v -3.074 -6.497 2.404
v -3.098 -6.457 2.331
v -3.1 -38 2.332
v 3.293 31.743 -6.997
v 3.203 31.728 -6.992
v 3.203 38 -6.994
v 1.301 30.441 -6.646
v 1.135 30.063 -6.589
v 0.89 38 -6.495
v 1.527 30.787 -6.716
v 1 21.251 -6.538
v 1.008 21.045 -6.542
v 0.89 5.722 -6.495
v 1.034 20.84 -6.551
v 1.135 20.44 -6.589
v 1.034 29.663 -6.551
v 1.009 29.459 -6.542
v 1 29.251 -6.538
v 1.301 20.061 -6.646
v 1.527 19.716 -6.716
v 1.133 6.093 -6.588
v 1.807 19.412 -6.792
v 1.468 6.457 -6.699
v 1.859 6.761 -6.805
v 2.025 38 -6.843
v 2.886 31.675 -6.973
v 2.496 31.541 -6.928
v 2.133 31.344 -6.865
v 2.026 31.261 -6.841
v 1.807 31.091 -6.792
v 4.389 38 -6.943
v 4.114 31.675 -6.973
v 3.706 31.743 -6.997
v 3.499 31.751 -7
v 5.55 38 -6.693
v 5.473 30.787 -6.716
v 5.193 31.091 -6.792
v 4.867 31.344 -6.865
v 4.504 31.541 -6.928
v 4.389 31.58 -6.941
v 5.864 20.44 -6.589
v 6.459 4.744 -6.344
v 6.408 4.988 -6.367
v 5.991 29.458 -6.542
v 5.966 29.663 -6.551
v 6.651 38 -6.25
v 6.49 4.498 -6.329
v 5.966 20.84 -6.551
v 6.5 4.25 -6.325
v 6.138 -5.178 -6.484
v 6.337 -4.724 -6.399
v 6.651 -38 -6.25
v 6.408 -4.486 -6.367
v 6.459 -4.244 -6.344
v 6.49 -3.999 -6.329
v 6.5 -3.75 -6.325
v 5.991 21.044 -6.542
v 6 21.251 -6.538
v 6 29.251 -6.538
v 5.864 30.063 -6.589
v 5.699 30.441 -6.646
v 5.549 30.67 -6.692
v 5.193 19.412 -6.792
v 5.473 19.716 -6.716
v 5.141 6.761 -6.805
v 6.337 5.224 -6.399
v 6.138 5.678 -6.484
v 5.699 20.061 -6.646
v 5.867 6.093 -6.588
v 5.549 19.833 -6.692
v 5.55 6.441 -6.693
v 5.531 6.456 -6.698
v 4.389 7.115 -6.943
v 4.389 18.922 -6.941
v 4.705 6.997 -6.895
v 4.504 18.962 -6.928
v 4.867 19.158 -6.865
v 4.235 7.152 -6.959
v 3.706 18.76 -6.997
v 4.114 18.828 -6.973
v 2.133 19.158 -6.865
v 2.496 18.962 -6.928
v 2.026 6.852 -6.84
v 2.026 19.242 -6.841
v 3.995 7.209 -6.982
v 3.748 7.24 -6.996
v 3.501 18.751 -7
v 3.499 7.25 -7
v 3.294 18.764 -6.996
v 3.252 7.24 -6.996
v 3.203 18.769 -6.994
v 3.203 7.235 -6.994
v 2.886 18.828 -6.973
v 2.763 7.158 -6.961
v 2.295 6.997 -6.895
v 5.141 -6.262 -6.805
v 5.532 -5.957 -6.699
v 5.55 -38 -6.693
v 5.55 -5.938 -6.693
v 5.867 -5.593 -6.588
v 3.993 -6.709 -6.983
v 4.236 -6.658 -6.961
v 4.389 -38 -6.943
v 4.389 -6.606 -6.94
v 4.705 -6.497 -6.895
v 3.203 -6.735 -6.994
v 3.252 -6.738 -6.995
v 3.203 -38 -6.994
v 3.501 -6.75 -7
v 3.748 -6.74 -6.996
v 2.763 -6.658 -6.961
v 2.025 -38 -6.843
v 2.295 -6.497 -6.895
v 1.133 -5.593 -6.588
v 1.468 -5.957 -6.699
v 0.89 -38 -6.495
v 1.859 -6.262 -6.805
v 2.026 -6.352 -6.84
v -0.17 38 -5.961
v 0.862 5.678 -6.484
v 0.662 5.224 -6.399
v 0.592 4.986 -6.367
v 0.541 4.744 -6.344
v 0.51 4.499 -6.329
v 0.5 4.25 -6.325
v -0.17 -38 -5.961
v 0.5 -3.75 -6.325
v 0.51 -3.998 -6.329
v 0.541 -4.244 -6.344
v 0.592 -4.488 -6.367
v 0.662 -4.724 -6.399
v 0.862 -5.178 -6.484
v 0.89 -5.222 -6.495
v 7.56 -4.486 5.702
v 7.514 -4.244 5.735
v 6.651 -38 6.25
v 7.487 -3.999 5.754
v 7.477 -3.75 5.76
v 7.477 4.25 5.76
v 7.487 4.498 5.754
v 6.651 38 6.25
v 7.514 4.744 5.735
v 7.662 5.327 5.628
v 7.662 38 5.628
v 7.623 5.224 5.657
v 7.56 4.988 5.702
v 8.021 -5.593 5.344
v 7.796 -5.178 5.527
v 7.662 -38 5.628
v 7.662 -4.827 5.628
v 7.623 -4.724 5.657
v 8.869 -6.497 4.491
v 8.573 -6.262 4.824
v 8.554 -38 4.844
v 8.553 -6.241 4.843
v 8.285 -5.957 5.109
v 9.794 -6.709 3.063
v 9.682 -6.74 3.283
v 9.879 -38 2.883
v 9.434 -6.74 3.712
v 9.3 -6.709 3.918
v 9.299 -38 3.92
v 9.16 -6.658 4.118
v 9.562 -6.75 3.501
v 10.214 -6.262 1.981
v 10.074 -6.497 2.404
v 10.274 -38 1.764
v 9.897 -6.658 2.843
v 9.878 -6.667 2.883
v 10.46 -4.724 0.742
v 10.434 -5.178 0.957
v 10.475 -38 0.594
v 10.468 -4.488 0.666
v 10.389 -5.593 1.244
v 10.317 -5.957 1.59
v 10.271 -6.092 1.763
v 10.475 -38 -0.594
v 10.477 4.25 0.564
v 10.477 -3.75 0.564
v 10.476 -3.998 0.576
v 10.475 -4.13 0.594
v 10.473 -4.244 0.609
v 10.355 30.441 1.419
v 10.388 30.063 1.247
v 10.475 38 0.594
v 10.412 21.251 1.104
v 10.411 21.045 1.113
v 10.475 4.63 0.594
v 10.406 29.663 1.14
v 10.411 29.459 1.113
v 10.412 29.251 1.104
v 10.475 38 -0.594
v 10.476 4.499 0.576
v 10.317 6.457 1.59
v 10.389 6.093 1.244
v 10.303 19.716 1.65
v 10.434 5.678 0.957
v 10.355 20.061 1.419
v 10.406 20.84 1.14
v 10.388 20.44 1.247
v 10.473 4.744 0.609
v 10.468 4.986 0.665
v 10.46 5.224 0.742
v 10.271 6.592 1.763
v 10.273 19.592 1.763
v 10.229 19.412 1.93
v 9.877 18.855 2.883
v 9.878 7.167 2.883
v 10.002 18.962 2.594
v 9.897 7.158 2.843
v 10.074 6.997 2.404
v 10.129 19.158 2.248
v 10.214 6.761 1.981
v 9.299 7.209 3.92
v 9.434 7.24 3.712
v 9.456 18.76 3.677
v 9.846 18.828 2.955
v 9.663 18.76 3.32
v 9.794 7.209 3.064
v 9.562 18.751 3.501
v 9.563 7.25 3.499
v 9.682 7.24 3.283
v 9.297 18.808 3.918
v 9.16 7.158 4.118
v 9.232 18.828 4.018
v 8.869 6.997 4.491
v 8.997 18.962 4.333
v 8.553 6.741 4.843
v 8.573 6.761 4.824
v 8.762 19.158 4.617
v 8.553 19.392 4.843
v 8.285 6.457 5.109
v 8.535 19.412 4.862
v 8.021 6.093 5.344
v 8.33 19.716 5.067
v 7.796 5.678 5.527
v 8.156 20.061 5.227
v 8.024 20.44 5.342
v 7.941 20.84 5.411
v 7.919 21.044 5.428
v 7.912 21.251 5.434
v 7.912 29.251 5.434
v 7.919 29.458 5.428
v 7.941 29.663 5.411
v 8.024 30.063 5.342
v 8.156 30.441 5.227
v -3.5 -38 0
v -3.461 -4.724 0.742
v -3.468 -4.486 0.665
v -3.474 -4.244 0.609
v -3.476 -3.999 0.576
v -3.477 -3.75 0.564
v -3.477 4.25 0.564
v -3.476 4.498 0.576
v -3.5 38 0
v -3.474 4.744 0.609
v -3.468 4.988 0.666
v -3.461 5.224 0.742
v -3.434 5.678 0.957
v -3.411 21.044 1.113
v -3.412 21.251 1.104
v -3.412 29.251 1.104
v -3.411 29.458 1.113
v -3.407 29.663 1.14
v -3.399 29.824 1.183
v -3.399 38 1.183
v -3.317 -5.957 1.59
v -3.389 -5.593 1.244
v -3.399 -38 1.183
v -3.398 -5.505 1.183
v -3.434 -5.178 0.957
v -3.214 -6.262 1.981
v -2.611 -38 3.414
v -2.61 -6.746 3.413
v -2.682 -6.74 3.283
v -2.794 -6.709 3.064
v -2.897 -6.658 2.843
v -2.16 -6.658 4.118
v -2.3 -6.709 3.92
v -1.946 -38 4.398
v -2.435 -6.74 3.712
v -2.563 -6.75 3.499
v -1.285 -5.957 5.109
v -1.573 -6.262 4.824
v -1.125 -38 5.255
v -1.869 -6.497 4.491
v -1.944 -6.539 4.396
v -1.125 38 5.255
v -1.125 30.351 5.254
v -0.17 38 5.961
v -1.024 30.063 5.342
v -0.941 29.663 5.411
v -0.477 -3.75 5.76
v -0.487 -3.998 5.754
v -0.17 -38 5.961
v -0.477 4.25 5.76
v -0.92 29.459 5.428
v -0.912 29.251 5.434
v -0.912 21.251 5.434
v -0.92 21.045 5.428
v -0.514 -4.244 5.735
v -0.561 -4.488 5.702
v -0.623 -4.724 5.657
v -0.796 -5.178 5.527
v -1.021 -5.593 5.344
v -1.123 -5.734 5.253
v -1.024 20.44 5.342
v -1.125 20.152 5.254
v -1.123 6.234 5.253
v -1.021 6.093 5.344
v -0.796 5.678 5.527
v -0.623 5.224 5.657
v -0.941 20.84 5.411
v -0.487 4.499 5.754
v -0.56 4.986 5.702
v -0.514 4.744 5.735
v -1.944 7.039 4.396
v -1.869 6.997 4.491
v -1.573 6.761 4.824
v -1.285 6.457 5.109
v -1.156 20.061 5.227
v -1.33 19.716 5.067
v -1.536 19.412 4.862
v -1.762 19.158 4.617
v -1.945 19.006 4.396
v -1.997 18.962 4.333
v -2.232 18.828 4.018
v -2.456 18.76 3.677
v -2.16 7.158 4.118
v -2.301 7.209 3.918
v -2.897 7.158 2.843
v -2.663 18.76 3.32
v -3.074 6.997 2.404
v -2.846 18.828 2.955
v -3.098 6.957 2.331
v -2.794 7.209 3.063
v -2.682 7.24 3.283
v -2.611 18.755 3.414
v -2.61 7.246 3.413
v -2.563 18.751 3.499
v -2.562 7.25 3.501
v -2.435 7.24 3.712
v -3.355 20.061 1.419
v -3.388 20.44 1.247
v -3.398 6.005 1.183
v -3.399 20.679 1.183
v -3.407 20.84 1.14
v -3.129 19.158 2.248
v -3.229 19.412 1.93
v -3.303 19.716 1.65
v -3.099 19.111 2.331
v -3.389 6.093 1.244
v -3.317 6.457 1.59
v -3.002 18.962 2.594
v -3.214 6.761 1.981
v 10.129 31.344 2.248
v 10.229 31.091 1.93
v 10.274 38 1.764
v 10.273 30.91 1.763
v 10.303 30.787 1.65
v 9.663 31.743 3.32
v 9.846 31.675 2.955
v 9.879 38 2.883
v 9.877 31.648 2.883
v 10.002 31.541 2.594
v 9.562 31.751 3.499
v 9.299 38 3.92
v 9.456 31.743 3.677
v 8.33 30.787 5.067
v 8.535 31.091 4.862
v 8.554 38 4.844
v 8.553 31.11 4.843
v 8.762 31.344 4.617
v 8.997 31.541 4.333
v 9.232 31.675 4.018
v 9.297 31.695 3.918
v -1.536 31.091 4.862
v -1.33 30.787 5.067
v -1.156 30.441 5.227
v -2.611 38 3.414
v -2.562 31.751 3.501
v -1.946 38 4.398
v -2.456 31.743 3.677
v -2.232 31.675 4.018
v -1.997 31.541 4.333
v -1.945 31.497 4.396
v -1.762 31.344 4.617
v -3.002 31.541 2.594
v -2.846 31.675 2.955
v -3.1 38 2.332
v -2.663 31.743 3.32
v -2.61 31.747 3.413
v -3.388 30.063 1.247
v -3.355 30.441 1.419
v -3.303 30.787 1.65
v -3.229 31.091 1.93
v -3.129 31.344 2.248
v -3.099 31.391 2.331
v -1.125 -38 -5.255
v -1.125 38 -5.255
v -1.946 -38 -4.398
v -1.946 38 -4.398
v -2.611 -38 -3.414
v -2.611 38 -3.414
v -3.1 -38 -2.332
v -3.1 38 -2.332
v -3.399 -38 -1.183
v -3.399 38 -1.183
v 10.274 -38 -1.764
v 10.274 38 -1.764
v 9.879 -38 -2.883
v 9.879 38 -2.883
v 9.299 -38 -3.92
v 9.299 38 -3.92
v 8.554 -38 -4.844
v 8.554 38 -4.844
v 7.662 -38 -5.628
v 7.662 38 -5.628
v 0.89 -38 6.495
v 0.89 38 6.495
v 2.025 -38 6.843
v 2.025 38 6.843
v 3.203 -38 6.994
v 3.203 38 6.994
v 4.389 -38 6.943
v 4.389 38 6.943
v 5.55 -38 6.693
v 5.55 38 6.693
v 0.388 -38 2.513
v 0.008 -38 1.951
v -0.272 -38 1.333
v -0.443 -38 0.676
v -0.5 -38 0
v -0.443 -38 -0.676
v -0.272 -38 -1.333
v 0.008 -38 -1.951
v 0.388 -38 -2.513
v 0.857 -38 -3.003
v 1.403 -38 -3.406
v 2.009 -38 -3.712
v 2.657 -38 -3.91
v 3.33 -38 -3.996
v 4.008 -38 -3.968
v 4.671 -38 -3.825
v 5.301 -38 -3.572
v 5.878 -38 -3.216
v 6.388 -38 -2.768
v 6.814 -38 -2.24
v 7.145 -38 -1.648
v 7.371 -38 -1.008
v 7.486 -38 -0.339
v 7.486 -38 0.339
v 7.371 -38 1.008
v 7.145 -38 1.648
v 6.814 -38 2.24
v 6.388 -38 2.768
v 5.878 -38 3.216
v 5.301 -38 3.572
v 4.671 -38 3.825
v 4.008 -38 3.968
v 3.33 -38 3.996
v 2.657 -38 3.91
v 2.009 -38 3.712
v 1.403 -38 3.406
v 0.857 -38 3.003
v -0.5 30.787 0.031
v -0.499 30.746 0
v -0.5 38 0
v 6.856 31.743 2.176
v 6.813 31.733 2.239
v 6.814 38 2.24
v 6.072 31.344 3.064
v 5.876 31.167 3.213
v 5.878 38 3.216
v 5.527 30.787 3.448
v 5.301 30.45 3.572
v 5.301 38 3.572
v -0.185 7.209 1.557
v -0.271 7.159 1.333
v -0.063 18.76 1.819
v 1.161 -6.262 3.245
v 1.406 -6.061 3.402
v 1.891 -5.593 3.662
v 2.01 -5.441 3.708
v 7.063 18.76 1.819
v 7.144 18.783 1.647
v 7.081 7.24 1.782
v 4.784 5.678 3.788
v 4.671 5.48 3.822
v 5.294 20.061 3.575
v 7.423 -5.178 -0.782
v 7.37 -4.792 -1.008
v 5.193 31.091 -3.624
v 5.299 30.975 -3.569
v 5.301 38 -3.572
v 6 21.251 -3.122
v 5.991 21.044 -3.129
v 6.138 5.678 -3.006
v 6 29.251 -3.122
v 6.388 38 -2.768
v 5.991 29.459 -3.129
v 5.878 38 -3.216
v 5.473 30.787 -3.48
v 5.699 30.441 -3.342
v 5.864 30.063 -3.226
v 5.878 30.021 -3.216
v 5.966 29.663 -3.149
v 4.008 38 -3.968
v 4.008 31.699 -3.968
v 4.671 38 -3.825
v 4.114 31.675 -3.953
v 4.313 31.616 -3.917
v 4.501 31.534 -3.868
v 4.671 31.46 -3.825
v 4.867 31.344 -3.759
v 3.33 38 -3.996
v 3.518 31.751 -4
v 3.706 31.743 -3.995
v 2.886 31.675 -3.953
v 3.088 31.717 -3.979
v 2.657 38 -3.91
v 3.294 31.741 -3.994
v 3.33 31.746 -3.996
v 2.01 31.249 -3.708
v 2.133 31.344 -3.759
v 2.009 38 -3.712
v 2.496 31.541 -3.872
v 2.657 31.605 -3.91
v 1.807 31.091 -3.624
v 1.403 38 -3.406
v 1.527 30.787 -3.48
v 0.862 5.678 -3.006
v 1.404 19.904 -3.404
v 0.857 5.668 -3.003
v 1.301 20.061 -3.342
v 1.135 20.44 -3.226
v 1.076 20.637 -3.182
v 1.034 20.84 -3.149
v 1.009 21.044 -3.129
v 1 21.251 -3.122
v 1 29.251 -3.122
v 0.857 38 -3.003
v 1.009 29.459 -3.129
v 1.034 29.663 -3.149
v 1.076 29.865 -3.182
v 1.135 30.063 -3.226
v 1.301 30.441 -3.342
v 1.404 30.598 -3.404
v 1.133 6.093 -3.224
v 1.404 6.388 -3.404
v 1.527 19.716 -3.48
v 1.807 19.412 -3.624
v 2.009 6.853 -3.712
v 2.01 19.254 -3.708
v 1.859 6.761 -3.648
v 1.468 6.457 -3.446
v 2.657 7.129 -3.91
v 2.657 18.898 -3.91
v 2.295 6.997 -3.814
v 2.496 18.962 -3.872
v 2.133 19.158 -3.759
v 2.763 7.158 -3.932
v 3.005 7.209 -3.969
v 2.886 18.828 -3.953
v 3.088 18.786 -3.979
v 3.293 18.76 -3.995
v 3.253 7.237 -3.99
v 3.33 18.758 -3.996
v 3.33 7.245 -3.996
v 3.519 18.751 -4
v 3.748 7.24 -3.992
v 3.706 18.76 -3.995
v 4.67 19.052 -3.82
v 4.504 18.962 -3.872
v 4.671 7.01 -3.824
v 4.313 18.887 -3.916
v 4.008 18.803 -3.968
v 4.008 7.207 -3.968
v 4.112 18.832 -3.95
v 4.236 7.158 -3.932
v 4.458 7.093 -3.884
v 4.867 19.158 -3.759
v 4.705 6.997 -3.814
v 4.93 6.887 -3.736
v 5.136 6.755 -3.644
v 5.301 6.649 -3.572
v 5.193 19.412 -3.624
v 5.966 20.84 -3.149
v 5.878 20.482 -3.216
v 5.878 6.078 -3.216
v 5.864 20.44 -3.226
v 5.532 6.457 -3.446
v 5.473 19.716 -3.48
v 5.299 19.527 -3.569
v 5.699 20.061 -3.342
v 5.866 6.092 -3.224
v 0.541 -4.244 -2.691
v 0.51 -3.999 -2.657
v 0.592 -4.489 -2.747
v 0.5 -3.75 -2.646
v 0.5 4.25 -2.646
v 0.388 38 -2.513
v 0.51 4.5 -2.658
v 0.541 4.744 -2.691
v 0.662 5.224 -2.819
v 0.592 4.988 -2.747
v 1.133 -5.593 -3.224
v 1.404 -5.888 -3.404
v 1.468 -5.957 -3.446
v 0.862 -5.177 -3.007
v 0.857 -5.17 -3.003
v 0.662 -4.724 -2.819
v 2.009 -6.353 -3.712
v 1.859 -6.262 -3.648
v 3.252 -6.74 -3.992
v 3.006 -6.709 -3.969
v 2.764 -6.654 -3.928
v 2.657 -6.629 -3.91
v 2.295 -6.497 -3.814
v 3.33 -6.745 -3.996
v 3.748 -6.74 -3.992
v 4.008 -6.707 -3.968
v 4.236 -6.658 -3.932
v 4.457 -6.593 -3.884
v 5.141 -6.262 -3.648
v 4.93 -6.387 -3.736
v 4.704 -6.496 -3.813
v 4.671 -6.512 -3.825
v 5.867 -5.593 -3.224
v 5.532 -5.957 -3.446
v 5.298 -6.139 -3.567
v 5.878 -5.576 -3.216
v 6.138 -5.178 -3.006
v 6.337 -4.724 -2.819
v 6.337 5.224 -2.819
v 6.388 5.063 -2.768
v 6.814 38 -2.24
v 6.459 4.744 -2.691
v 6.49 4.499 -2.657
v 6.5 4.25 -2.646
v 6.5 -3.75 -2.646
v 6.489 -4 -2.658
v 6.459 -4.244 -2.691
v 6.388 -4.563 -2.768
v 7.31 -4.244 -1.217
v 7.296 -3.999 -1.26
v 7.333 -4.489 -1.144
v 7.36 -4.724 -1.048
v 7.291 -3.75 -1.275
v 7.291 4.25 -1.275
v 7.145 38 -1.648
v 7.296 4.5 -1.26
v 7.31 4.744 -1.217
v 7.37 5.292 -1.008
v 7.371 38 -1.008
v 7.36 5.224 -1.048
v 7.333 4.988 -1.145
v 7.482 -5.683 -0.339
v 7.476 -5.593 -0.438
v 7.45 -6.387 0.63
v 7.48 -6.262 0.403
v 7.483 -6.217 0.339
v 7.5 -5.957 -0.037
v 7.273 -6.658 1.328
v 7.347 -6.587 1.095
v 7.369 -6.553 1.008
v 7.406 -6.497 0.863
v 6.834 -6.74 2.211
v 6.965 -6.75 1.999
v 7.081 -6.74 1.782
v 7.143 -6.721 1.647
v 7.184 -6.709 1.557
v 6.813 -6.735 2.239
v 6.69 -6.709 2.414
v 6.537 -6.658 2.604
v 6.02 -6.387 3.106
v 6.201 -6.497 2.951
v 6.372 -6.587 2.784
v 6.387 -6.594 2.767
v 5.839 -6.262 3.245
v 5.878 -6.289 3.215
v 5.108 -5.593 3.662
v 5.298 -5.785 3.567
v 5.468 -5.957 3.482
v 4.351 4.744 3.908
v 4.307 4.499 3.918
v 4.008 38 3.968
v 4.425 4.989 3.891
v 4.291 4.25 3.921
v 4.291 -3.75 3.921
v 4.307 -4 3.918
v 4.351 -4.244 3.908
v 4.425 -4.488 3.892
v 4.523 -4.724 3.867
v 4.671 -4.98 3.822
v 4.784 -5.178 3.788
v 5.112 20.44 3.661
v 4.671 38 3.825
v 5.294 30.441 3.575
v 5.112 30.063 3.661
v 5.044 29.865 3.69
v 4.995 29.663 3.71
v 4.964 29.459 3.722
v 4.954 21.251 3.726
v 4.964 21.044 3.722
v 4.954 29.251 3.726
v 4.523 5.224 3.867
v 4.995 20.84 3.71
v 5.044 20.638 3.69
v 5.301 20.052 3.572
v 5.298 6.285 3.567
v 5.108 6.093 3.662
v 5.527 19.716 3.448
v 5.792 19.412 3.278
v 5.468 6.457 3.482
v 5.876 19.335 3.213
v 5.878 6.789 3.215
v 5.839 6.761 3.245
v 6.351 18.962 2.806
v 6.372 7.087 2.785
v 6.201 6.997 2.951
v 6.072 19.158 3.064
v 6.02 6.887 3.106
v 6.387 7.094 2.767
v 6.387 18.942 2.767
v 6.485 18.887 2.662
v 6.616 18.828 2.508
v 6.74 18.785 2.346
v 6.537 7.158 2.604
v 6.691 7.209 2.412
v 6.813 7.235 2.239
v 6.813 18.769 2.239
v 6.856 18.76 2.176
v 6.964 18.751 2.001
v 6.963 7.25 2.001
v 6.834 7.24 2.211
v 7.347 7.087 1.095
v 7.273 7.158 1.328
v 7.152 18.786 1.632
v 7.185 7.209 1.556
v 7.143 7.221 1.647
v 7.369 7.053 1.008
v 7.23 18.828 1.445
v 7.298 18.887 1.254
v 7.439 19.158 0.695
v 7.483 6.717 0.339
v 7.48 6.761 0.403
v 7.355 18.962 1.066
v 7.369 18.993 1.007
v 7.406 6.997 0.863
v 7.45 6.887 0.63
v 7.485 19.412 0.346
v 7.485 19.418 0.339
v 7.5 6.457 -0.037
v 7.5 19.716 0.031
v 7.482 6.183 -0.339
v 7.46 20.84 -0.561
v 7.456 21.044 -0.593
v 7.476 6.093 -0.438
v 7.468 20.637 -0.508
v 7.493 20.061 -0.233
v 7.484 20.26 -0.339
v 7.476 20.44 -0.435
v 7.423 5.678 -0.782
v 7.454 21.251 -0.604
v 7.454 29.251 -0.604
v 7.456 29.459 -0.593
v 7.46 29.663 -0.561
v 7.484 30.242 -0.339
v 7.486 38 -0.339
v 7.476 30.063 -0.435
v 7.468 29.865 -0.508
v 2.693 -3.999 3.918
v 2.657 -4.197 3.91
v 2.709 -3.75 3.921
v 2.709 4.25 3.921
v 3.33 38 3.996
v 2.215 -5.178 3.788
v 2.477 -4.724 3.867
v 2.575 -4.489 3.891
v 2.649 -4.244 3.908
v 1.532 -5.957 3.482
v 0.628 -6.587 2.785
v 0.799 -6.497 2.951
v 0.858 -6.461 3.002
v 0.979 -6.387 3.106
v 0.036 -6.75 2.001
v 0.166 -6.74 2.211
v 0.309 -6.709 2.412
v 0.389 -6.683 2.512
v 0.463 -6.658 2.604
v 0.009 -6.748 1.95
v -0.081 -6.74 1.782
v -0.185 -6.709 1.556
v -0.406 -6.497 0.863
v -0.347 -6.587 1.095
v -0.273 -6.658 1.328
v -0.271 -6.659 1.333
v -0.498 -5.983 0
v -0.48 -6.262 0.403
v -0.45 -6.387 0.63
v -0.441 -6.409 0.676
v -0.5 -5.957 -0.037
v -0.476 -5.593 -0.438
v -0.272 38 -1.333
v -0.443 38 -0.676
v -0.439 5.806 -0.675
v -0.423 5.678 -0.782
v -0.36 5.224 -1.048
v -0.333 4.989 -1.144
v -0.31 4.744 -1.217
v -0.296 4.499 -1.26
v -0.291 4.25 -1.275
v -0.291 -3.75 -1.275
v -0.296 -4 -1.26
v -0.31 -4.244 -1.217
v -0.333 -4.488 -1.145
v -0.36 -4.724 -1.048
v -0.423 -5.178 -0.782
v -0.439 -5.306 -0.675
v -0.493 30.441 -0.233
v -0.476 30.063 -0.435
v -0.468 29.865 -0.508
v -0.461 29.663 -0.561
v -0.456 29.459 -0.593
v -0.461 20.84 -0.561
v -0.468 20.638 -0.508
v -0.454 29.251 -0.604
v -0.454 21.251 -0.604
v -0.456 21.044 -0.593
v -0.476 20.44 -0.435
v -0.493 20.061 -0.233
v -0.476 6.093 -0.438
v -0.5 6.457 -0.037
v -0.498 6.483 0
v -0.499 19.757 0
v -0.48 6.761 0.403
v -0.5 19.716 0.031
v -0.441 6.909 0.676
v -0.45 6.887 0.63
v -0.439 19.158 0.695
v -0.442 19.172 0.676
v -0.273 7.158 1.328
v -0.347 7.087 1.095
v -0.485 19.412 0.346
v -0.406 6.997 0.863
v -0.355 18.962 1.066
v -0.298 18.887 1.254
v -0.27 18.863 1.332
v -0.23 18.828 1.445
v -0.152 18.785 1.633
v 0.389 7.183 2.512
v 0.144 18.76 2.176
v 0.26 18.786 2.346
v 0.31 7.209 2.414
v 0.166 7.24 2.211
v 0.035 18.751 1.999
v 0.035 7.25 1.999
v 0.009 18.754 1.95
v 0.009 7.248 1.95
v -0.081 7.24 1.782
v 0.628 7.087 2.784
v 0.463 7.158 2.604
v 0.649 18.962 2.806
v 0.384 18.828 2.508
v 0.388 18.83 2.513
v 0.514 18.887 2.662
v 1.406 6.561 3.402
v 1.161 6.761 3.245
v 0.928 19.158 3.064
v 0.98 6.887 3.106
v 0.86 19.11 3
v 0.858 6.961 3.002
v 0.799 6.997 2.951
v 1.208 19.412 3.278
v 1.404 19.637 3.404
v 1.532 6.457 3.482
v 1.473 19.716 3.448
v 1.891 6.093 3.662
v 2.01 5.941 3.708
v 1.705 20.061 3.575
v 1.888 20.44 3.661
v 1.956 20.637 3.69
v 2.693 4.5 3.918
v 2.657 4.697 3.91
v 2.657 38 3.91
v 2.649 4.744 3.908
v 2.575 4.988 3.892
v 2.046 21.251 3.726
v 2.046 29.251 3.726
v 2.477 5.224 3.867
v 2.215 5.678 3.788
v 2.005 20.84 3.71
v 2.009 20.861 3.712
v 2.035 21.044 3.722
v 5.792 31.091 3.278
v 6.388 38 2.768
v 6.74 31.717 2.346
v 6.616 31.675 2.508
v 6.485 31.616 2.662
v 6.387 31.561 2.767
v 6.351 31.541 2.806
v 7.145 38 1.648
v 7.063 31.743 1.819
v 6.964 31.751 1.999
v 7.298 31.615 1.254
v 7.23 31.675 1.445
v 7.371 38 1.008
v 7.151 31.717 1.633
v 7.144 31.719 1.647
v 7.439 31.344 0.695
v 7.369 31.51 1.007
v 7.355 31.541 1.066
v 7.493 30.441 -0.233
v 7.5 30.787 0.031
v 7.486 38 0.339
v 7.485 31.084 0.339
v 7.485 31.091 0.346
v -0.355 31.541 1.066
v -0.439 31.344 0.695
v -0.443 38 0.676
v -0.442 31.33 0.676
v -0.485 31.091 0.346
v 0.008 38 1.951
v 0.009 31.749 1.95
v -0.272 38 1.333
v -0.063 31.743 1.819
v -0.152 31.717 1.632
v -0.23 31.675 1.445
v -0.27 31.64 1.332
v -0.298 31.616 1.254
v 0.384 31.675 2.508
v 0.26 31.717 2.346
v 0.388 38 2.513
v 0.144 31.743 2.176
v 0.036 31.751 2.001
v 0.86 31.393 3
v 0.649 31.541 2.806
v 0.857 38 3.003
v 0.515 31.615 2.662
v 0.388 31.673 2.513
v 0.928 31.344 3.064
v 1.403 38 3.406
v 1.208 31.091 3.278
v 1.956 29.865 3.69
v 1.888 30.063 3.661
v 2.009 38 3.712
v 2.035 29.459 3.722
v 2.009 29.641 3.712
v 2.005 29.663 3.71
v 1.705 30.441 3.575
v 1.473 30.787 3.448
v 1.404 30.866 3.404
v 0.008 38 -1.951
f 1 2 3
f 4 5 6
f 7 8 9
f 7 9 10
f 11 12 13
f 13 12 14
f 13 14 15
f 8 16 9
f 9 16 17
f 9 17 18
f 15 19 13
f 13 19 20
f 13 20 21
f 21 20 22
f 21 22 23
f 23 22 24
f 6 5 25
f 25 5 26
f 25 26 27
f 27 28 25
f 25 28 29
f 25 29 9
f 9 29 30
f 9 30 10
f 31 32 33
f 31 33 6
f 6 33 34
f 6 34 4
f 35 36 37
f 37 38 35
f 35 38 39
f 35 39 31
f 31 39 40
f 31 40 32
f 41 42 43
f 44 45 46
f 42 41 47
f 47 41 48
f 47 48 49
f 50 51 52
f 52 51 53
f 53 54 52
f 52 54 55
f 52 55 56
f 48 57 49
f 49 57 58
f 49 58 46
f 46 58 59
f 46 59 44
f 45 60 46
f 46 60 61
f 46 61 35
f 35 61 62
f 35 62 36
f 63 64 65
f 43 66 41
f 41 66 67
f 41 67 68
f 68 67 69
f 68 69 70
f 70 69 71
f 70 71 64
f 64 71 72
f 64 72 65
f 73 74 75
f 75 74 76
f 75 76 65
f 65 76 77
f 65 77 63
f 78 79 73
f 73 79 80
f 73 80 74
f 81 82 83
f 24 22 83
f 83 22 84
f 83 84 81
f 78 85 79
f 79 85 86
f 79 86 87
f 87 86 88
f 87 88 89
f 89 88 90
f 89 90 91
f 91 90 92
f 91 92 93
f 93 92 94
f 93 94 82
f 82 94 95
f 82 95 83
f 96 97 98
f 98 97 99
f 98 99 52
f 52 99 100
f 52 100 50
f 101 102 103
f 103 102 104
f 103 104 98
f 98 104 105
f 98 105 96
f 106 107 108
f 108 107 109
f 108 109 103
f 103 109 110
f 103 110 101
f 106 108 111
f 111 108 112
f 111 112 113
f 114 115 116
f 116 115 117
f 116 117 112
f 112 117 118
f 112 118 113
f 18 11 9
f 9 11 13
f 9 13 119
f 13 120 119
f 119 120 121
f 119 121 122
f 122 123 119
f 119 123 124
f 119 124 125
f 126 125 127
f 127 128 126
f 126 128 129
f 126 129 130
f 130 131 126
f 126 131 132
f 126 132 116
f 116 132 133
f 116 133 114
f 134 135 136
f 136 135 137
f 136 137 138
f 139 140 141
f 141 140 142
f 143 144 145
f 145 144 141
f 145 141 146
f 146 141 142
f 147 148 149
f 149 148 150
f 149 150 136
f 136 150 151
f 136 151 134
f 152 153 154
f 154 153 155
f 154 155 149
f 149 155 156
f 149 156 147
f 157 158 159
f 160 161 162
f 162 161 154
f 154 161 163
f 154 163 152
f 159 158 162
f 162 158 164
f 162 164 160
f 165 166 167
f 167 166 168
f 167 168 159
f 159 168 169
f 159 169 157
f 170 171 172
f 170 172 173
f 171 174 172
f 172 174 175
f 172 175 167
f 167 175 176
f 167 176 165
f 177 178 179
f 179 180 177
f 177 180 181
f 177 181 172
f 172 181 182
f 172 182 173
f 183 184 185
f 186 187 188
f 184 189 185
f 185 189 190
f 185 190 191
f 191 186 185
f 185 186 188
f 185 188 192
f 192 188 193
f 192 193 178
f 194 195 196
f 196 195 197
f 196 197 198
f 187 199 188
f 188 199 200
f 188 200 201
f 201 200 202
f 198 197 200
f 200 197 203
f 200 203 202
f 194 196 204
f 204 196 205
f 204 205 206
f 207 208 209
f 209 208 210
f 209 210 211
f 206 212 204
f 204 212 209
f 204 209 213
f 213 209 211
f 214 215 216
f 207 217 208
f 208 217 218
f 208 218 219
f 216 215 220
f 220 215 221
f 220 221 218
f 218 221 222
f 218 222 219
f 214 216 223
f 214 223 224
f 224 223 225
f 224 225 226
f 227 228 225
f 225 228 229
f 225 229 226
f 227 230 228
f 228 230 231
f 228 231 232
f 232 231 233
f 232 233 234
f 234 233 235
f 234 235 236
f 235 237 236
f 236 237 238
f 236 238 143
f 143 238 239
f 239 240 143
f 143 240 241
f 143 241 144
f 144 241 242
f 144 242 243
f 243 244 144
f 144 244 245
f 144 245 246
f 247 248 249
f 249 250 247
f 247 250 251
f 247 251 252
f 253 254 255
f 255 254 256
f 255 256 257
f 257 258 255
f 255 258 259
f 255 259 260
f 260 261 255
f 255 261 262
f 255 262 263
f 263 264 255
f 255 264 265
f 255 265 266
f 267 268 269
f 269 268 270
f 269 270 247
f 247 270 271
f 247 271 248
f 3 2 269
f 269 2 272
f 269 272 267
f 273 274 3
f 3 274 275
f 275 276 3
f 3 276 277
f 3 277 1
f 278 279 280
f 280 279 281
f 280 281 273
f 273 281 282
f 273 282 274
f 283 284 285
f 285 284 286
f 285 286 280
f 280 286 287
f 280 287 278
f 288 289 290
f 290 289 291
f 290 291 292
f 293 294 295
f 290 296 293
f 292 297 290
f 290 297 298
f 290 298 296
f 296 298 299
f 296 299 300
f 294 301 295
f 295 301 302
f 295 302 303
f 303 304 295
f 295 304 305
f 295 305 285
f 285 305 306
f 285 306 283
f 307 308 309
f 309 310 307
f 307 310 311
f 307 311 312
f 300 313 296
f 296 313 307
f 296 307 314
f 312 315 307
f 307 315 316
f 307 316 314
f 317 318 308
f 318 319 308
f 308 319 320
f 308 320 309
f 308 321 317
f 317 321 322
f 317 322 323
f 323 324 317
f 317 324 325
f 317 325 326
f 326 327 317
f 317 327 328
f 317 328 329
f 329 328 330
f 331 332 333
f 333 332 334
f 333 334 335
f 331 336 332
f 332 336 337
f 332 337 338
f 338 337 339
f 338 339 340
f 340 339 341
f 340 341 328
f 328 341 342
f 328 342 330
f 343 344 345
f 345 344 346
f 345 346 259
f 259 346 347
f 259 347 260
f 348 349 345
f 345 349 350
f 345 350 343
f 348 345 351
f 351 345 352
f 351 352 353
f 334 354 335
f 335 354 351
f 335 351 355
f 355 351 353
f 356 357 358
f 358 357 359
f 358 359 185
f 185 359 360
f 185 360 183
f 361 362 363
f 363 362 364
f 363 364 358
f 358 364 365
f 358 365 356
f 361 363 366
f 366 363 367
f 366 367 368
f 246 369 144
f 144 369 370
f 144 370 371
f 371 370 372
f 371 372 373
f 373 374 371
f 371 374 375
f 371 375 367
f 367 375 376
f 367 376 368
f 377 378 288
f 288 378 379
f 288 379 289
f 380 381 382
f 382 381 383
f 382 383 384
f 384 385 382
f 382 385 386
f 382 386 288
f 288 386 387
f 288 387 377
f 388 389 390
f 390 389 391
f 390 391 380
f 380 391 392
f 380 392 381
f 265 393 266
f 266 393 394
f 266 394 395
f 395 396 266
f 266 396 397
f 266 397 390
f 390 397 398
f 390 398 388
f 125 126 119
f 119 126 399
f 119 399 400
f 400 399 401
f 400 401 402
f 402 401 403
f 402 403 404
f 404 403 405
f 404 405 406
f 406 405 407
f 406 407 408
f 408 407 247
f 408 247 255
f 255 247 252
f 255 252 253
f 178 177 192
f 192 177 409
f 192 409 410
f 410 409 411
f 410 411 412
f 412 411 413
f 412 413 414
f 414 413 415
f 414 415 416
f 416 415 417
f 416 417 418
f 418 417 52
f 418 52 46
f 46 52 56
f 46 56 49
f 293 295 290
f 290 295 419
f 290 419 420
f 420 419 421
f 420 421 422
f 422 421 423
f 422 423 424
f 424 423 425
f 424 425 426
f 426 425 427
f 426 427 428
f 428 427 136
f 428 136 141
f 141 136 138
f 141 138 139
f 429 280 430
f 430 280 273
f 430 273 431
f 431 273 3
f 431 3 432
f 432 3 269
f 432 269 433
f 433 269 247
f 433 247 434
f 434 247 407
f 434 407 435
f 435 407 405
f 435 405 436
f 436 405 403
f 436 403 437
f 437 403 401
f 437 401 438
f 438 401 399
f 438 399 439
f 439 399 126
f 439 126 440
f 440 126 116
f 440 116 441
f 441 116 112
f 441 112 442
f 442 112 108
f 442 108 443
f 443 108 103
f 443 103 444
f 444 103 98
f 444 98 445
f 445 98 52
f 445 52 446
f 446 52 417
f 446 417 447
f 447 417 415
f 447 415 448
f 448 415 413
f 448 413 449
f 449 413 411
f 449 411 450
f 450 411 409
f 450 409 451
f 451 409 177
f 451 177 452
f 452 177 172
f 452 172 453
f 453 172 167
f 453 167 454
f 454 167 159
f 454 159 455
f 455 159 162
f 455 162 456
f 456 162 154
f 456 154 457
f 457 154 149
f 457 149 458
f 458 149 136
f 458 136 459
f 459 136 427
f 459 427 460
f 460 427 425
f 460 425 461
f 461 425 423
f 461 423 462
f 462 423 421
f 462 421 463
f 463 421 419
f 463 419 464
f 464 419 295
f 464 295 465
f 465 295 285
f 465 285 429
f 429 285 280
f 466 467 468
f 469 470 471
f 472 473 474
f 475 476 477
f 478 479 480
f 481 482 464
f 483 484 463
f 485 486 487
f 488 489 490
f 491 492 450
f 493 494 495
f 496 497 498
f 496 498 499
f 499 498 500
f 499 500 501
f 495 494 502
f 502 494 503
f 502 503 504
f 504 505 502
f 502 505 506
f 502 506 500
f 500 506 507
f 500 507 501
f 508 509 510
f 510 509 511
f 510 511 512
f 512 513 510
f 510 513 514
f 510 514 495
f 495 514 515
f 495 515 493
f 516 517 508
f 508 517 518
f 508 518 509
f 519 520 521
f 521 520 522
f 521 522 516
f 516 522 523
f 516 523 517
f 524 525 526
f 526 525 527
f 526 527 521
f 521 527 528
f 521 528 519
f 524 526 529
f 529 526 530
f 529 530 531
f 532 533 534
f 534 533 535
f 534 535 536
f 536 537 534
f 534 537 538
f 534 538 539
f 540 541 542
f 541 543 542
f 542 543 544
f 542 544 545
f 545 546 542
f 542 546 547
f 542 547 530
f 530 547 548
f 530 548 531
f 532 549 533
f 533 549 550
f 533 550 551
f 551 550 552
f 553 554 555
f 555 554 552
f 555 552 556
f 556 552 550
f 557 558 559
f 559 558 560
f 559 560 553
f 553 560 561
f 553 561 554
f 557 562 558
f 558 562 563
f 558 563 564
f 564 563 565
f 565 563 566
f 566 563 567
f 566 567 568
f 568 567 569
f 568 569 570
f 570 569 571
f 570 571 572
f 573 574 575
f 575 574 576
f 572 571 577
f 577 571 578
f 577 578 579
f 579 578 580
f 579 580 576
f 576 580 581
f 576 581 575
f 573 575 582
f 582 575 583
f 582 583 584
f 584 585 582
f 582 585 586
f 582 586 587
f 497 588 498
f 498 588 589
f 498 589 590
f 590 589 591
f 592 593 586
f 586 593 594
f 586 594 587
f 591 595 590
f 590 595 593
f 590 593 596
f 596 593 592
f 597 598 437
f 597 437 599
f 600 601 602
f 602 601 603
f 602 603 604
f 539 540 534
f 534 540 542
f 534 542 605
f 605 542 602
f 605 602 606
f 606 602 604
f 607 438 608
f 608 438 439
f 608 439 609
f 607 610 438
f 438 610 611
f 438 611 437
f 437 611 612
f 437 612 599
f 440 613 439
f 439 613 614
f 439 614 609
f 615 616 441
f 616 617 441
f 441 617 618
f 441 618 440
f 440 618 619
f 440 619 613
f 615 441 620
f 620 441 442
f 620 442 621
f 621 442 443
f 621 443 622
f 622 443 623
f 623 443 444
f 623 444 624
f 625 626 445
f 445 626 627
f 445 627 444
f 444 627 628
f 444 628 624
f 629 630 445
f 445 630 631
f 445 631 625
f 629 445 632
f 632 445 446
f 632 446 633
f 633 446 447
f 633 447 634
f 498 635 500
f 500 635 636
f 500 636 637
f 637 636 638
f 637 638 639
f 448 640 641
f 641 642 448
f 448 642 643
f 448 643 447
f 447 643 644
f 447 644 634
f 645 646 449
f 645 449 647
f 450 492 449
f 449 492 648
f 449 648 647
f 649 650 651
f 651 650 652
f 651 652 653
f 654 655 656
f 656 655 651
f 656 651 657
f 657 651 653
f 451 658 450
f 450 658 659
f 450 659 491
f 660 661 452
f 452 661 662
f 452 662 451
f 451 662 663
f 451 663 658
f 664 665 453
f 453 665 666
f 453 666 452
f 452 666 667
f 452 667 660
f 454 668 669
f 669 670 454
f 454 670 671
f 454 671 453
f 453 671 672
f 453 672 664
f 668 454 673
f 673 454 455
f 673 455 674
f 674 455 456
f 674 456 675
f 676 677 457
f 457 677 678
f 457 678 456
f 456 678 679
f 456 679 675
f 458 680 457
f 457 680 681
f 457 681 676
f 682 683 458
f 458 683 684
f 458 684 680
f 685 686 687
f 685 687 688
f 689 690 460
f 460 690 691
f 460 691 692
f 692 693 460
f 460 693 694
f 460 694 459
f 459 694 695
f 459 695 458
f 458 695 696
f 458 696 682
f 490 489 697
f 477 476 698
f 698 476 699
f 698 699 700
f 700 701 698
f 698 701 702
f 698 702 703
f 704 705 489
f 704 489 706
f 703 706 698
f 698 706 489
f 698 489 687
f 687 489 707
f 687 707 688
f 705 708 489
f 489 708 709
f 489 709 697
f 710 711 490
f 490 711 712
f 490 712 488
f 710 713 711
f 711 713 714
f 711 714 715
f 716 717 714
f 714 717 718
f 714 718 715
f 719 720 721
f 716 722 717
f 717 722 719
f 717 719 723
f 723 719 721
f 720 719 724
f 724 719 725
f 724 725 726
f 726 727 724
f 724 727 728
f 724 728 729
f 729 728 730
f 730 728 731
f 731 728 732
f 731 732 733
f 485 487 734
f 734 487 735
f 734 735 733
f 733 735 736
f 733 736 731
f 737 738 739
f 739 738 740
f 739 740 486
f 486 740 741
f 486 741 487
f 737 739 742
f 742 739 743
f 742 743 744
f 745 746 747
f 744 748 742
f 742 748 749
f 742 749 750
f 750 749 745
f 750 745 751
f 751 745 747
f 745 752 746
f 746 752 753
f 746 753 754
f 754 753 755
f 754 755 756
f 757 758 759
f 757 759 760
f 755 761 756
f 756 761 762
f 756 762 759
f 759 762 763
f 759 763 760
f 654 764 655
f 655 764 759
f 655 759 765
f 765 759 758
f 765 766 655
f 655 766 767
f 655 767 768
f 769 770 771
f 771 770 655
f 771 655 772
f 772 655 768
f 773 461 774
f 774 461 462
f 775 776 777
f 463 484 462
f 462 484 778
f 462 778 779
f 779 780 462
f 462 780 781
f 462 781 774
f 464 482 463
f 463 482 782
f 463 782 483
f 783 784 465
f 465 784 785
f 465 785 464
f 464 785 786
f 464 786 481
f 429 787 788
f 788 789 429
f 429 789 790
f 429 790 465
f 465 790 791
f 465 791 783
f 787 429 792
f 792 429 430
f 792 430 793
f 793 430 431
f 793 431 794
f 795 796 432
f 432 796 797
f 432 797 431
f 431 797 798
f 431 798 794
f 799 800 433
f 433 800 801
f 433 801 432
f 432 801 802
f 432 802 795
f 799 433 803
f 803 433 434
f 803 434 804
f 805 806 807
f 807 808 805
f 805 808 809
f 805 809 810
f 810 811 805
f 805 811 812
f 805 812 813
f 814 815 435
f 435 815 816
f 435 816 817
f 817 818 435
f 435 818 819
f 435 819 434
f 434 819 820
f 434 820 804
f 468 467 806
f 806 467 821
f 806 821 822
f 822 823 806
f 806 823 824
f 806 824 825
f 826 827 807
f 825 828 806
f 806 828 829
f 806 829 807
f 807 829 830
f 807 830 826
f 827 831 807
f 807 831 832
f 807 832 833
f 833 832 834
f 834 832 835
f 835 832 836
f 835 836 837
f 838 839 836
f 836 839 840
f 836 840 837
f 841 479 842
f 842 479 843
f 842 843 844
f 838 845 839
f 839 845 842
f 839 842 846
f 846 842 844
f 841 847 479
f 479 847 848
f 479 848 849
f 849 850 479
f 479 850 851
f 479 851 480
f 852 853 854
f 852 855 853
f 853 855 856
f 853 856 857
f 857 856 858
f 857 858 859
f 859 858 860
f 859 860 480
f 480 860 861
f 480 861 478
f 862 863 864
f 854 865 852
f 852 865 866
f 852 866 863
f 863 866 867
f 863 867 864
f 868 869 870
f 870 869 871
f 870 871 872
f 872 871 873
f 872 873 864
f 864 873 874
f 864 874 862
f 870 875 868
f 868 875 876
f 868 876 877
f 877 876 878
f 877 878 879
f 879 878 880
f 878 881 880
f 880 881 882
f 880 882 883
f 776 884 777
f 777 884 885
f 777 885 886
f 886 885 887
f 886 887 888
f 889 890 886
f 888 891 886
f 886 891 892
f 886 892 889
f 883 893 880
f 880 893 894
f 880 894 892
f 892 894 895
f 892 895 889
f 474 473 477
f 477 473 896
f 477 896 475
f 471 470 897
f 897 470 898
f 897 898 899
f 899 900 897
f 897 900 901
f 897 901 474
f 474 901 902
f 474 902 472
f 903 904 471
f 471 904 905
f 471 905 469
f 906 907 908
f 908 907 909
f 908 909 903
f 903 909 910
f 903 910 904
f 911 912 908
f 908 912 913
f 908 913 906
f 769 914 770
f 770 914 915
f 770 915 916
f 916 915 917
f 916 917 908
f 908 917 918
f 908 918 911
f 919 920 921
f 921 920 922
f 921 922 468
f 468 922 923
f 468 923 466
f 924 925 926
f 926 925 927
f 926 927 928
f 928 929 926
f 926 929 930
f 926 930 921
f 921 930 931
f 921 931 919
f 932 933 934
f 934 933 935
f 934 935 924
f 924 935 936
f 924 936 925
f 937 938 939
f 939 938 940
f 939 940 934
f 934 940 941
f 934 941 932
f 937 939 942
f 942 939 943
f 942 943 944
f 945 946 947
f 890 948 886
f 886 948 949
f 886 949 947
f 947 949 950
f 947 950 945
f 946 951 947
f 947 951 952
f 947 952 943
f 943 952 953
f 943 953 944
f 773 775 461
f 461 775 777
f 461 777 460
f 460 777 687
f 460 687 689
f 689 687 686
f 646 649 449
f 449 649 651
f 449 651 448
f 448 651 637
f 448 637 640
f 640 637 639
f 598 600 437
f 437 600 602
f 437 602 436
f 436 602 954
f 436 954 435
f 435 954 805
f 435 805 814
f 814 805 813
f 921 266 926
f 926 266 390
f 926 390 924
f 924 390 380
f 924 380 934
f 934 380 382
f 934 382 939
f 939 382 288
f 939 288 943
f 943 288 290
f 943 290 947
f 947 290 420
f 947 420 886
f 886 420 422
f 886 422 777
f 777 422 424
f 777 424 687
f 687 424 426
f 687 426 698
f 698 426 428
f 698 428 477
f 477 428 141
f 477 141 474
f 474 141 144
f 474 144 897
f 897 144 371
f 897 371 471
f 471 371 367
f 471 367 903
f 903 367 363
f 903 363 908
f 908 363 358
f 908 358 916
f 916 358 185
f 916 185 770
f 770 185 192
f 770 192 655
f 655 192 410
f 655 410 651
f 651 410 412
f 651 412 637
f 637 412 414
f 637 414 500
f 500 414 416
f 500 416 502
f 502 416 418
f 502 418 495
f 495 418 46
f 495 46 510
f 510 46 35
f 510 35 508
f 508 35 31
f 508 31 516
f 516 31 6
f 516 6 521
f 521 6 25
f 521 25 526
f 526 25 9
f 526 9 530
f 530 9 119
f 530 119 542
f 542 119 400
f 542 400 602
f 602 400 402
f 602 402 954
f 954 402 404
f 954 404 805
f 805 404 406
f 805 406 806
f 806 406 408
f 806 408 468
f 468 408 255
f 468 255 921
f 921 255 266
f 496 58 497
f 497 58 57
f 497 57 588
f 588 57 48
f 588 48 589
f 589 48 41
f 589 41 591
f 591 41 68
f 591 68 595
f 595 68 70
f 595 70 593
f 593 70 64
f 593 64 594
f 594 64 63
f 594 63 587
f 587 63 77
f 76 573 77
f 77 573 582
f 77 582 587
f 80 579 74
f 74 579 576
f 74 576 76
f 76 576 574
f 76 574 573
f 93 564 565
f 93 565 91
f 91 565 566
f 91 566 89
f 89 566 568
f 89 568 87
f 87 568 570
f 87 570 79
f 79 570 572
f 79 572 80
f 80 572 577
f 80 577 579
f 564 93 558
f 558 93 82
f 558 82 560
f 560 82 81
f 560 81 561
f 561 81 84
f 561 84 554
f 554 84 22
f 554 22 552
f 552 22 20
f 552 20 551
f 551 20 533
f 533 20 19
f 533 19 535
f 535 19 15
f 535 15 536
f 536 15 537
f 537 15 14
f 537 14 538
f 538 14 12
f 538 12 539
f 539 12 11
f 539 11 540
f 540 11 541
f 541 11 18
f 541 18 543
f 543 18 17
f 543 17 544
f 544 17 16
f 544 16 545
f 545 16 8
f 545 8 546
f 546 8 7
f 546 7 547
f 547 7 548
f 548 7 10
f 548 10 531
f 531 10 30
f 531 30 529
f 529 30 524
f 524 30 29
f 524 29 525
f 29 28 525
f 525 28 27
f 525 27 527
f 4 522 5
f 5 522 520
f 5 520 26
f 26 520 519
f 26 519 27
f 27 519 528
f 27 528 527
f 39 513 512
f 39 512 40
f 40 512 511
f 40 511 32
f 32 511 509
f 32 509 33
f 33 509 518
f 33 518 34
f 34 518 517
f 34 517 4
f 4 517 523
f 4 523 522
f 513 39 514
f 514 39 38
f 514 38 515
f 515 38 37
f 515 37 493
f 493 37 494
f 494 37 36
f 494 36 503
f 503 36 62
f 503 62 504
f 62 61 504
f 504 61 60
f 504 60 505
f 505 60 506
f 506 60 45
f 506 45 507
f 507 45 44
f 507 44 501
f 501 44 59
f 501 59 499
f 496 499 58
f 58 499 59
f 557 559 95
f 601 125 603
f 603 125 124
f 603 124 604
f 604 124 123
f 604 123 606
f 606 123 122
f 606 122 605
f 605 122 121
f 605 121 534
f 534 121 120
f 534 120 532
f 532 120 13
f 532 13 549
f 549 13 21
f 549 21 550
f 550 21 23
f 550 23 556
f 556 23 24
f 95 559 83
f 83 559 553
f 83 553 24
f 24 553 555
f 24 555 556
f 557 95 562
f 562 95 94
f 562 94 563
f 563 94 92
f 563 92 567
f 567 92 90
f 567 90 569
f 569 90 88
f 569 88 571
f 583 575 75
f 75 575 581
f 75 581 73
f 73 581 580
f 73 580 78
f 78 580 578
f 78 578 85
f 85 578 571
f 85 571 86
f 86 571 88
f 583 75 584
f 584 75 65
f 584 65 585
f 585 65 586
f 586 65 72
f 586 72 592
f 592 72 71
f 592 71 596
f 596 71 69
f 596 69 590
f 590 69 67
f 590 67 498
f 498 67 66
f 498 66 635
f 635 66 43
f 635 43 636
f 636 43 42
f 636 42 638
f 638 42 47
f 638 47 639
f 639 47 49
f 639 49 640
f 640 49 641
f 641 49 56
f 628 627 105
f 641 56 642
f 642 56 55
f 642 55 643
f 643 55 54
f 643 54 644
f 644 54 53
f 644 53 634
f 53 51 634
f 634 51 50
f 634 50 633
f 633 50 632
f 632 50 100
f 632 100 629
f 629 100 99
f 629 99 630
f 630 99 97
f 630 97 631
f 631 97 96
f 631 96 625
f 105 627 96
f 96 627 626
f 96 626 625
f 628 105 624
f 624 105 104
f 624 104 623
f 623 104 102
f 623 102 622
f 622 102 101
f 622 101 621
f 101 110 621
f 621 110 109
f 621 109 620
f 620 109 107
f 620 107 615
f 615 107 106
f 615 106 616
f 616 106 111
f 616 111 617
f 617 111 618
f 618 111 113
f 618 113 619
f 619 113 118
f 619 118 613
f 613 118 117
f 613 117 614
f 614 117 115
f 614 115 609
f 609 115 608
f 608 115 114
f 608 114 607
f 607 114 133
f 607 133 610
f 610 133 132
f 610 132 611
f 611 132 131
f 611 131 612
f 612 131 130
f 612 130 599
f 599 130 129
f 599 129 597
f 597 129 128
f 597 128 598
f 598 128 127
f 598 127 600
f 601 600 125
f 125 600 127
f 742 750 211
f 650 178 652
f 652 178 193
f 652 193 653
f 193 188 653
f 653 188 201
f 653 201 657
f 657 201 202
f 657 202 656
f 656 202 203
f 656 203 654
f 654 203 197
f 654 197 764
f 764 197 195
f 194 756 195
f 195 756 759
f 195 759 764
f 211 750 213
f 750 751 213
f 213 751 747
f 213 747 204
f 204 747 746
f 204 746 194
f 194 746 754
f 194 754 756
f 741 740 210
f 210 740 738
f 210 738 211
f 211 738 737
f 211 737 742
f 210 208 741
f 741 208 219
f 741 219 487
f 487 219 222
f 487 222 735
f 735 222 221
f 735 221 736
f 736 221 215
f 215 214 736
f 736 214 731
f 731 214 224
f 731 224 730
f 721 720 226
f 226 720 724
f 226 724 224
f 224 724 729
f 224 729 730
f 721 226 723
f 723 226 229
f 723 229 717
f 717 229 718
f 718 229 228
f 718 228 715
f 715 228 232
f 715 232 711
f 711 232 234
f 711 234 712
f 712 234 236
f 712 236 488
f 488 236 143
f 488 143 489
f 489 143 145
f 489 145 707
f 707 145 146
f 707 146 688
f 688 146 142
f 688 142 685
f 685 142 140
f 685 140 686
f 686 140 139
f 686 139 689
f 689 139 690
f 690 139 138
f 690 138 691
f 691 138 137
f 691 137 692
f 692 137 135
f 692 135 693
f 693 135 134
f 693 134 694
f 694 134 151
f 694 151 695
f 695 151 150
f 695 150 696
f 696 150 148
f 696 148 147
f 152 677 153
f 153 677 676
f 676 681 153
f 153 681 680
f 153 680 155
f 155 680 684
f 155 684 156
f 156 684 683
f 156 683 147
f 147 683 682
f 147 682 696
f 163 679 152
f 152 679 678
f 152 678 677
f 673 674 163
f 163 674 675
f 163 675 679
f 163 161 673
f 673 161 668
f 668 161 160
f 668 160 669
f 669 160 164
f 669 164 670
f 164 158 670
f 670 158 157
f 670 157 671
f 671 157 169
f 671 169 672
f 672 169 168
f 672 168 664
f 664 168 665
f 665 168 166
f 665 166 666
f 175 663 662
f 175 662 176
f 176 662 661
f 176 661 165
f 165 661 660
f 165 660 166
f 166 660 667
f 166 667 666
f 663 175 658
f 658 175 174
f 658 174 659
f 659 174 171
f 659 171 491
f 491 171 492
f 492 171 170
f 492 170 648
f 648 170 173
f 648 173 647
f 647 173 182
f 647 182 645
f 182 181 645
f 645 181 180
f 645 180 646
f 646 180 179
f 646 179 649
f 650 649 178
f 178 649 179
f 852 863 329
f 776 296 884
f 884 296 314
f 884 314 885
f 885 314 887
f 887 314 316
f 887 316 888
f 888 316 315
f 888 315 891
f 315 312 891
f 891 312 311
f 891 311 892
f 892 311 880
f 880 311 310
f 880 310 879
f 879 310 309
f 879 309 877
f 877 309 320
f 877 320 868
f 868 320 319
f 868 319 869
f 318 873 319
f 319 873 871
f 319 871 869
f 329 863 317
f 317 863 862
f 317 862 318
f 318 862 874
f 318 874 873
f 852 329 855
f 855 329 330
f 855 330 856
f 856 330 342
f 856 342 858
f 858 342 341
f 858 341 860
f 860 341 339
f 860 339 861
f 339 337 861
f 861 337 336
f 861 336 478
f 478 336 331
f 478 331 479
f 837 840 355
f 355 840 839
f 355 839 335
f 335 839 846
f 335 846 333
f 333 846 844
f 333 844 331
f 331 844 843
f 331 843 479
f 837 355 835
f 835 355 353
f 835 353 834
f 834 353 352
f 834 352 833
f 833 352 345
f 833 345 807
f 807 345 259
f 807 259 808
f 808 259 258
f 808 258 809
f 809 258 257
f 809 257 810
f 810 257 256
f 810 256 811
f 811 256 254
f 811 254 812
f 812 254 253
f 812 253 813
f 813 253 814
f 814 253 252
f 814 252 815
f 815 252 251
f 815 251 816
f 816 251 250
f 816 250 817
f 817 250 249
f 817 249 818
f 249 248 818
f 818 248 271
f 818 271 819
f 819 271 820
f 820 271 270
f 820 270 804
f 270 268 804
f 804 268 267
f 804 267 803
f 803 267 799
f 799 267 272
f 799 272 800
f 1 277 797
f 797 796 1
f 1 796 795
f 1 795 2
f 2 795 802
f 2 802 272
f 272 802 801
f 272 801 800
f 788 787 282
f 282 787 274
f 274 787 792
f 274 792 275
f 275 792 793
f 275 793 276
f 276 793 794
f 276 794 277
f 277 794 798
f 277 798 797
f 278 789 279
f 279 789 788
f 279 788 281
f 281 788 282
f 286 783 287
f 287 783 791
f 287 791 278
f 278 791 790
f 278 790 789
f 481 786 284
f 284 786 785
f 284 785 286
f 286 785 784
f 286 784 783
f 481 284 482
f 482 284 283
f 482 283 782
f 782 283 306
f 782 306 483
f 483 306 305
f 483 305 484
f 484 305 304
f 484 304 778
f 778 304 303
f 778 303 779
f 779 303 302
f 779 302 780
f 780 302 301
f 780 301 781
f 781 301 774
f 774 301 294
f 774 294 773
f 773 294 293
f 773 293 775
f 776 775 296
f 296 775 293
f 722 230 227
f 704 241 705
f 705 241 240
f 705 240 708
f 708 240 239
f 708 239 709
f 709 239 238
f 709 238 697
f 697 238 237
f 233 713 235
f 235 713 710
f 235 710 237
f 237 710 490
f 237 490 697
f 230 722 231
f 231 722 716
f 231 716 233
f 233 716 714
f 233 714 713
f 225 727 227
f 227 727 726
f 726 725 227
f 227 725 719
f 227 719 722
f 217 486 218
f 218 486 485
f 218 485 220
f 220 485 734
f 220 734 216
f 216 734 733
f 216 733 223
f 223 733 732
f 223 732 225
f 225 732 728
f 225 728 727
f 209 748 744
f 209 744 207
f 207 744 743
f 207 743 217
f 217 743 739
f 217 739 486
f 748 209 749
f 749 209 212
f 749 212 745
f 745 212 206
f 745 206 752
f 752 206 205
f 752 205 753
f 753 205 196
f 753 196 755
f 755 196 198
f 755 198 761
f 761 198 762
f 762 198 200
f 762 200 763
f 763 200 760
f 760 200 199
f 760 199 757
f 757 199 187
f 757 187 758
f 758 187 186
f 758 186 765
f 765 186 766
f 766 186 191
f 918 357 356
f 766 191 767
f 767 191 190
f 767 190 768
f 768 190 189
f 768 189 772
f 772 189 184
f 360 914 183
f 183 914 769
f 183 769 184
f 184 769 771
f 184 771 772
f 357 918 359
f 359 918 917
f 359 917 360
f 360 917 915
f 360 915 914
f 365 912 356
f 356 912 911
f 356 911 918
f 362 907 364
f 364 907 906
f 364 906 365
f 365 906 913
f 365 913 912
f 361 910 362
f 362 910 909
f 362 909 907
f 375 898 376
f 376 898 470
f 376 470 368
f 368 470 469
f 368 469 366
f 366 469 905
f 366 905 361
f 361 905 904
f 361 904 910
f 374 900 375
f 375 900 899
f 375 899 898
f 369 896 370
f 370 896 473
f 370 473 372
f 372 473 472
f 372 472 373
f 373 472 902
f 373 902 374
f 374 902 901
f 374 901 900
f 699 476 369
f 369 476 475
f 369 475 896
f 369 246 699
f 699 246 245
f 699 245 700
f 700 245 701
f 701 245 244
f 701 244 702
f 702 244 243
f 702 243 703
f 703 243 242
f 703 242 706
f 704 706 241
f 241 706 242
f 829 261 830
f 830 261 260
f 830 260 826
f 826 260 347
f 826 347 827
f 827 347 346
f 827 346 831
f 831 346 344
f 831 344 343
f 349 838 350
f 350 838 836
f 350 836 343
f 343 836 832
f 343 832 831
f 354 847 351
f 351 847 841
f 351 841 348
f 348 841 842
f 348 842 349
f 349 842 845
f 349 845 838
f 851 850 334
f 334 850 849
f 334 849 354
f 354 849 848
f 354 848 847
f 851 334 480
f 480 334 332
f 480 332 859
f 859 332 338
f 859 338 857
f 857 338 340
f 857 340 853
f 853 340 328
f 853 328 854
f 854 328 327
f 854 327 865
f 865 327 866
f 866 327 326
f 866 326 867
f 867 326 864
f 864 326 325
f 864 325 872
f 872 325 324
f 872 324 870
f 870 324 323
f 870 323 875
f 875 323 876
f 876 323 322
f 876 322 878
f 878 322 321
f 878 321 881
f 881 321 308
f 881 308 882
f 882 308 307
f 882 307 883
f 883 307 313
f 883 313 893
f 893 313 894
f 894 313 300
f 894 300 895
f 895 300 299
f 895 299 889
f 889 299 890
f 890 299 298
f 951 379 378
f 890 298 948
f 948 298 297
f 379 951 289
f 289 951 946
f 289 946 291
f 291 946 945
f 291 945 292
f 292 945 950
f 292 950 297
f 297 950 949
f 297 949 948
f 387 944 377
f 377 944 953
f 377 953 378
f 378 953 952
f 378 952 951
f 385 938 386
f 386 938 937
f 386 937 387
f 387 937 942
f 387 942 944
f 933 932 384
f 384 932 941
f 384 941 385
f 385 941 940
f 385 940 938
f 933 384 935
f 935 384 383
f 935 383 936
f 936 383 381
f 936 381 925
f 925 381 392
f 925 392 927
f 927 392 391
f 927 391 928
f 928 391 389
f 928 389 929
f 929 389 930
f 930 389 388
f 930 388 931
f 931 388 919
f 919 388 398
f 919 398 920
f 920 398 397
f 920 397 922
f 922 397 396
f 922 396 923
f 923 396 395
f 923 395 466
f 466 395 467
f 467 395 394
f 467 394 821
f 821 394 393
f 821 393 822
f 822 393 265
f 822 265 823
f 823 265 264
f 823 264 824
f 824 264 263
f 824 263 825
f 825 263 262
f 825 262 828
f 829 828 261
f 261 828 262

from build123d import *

# Parameters (mm, degrees)
CUT_EXTRUDE1_DEPTH = 10
CIRPATTERN1_COUNT  = 3


with BuildPart() as part:
    # Sketch1 → Revolve1 (revolve)
    with BuildSketch(Plane.XY):
        Polygon((-0.5, -38), (-0.5, 38), (-3.5, 38), (-3.5, -23.32914466), (-3.5, -38), align=None)
    revolve(axis=Axis((3.5, 38, 0), (0, -1, 0)))

    # Sketch3 → Cut-Extrude1 (cut)
    with BuildSketch(Plane.XY):
        with BuildLine():
            Line((1, 21.251316376), (1, 29.251316376))
            ThreePointArc((1, 29.251316376), (3.5, 31.751316376), (6, 29.251316376))
            Line((6, 29.251316376), (6, 21.251316376))
            ThreePointArc((6, 21.251316376), (3.5, 18.751316376), (1, 21.251316376))
        make_face()
        with BuildLine():
            Line((6.5, 4.25), (6.5, -3.75))
            ThreePointArc((6.5, -3.75), (3.5, -6.75), (0.5, -3.75))
            Line((0.5, -3.75), (0.5, 4.25))
            ThreePointArc((0.5, 4.25), (3.5, 7.25), (6.5, 4.25))
        make_face()
    cut_extrude1 = extrude(amount=-CUT_EXTRUDE1_DEPTH, mode=Mode.SUBTRACT)

    # CirPattern1: Cut-Extrude1 ×3 about axis
    cirpattern1_axis = Axis((3.5, 0, 0), (0, 1, 0))
    for i in range(1, CIRPATTERN1_COUNT):
        add(cut_extrude1.rotate(cirpattern1_axis, i * 360 / CIRPATTERN1_COUNT), mode=Mode.SUBTRACT)


solid = part.part
